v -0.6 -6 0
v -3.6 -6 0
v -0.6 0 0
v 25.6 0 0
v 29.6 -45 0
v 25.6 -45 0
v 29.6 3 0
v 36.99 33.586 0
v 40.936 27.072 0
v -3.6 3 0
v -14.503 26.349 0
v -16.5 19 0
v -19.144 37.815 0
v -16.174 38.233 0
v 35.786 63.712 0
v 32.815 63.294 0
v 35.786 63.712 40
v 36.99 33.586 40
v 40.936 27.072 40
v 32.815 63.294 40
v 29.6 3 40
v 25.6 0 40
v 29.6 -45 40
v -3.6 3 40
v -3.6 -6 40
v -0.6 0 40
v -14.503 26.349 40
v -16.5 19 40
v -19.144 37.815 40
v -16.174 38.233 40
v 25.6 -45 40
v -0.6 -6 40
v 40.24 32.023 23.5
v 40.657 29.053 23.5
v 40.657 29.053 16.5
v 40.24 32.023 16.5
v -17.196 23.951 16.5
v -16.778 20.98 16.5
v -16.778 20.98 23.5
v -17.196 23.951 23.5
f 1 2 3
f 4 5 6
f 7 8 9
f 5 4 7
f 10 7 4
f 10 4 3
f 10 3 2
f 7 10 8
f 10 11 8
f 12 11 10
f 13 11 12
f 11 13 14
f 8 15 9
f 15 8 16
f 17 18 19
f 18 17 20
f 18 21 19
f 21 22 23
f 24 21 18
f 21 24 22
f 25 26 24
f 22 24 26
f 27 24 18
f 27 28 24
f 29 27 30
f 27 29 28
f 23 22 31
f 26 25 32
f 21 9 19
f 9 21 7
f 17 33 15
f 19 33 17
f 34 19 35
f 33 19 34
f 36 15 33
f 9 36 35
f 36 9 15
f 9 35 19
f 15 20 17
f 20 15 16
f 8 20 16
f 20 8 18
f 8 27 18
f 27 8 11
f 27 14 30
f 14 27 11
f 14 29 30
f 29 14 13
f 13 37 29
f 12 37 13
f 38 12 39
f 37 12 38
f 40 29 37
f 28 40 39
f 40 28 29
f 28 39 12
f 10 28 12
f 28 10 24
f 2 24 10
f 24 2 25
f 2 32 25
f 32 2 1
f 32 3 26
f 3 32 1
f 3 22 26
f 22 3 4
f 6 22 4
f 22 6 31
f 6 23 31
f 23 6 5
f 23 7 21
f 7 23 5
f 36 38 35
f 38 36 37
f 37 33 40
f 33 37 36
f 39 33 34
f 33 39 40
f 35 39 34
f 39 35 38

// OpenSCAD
// サウンドバー上面クリップ（I-O DATA LCD-U651DX ＋ サンワ 400-SP092 用）
// 2個印刷して左右に掛ける。数値を変えて再出力できます。

/* [モニター] */
T        = 25;   // モニター上端の厚さ（前後方向）mm ★要実測
clr      = 0.6;  // クリップの遊び
front_d  = 6;    // 前側の爪の長さ（画面にかかる量）
back_d   = 45;   // 背面側の脚の長さ

/* [サウンドバー] */
bar_d    = 50;   // サウンドバー奥行
bar_clr  = 1;    // 受け台の遊び
tilt     = 8;    // 下向き角度（度）
lift     = 15;   // モニター上端から受け台までの高さ（放熱用）
lip_h    = 12;   // 前側の立ち上がり高さ
back_h   = 30;   // 後ろ壁の高さ

/* [本体] */
W        = 40;   // クリップ幅
wall     = 4;    // クリップの肉厚
front_t  = 3;    // 前爪の厚み
cw       = 3;    // 受け台の壁厚
base_t   = 7;    // 受け台の底厚（結束バンド穴を内蔵）
tie_w    = 7;    // 結束バンド穴の幅
tie_h    = 3;    // 結束バンド穴の高さ
test_only = false; // true でクリップ部だけの試し刷り（幅8mm）

D  = bar_d + 2*bar_clr + 2*cw;   // 受け台の全奥行
y0 = T/2 - D/2;                  // 受け台前端（モニター中心に合わせる）
zc = wall + lift;                // 受け台前端の底の高さ

module clip2d() {
  translate([-clr-front_t, 0]) square([T + 2*clr + front_t + wall, wall]); // 天板
  translate([-clr-front_t, -front_d]) square([front_t, front_d]);           // 前爪
  translate([T+clr, -back_d]) square([wall, back_d]);                      // 背面脚
}
module cradle2d() {
  translate([y0, zc]) rotate(tilt) {
    square([D, base_t]);                          // 底
    square([cw, base_t + lip_h]);                 // 前の立ち上がり
    translate([D-cw, 0]) square([cw, base_t + back_h]); // 後ろ壁
  }
}
module support2d() {
  hull() {
    translate([-clr-front_t, wall-1]) square([T + 2*clr + front_t + wall, 1]);
    translate([y0, zc]) rotate(tilt) square([D, 1]);
  }
}
module part() {
  if (test_only) {
    linear_extrude(8) clip2d();
  } else {
    difference() {
      linear_extrude(W) union() { clip2d(); support2d(); cradle2d(); }
      // 結束バンド穴（受け台の底を前後に貫通）
      translate([0, 0, W/2]) linear_extrude(tie_w, center=true)
        translate([y0, zc]) rotate(tilt)
          translate([-5, (base_t - tie_h)/2]) square([D + 10, tie_h]);
    }
  }
}
// 横倒し（側面形状がベッドに乗る向き）で出力。層方向に割れにくい。
part();
